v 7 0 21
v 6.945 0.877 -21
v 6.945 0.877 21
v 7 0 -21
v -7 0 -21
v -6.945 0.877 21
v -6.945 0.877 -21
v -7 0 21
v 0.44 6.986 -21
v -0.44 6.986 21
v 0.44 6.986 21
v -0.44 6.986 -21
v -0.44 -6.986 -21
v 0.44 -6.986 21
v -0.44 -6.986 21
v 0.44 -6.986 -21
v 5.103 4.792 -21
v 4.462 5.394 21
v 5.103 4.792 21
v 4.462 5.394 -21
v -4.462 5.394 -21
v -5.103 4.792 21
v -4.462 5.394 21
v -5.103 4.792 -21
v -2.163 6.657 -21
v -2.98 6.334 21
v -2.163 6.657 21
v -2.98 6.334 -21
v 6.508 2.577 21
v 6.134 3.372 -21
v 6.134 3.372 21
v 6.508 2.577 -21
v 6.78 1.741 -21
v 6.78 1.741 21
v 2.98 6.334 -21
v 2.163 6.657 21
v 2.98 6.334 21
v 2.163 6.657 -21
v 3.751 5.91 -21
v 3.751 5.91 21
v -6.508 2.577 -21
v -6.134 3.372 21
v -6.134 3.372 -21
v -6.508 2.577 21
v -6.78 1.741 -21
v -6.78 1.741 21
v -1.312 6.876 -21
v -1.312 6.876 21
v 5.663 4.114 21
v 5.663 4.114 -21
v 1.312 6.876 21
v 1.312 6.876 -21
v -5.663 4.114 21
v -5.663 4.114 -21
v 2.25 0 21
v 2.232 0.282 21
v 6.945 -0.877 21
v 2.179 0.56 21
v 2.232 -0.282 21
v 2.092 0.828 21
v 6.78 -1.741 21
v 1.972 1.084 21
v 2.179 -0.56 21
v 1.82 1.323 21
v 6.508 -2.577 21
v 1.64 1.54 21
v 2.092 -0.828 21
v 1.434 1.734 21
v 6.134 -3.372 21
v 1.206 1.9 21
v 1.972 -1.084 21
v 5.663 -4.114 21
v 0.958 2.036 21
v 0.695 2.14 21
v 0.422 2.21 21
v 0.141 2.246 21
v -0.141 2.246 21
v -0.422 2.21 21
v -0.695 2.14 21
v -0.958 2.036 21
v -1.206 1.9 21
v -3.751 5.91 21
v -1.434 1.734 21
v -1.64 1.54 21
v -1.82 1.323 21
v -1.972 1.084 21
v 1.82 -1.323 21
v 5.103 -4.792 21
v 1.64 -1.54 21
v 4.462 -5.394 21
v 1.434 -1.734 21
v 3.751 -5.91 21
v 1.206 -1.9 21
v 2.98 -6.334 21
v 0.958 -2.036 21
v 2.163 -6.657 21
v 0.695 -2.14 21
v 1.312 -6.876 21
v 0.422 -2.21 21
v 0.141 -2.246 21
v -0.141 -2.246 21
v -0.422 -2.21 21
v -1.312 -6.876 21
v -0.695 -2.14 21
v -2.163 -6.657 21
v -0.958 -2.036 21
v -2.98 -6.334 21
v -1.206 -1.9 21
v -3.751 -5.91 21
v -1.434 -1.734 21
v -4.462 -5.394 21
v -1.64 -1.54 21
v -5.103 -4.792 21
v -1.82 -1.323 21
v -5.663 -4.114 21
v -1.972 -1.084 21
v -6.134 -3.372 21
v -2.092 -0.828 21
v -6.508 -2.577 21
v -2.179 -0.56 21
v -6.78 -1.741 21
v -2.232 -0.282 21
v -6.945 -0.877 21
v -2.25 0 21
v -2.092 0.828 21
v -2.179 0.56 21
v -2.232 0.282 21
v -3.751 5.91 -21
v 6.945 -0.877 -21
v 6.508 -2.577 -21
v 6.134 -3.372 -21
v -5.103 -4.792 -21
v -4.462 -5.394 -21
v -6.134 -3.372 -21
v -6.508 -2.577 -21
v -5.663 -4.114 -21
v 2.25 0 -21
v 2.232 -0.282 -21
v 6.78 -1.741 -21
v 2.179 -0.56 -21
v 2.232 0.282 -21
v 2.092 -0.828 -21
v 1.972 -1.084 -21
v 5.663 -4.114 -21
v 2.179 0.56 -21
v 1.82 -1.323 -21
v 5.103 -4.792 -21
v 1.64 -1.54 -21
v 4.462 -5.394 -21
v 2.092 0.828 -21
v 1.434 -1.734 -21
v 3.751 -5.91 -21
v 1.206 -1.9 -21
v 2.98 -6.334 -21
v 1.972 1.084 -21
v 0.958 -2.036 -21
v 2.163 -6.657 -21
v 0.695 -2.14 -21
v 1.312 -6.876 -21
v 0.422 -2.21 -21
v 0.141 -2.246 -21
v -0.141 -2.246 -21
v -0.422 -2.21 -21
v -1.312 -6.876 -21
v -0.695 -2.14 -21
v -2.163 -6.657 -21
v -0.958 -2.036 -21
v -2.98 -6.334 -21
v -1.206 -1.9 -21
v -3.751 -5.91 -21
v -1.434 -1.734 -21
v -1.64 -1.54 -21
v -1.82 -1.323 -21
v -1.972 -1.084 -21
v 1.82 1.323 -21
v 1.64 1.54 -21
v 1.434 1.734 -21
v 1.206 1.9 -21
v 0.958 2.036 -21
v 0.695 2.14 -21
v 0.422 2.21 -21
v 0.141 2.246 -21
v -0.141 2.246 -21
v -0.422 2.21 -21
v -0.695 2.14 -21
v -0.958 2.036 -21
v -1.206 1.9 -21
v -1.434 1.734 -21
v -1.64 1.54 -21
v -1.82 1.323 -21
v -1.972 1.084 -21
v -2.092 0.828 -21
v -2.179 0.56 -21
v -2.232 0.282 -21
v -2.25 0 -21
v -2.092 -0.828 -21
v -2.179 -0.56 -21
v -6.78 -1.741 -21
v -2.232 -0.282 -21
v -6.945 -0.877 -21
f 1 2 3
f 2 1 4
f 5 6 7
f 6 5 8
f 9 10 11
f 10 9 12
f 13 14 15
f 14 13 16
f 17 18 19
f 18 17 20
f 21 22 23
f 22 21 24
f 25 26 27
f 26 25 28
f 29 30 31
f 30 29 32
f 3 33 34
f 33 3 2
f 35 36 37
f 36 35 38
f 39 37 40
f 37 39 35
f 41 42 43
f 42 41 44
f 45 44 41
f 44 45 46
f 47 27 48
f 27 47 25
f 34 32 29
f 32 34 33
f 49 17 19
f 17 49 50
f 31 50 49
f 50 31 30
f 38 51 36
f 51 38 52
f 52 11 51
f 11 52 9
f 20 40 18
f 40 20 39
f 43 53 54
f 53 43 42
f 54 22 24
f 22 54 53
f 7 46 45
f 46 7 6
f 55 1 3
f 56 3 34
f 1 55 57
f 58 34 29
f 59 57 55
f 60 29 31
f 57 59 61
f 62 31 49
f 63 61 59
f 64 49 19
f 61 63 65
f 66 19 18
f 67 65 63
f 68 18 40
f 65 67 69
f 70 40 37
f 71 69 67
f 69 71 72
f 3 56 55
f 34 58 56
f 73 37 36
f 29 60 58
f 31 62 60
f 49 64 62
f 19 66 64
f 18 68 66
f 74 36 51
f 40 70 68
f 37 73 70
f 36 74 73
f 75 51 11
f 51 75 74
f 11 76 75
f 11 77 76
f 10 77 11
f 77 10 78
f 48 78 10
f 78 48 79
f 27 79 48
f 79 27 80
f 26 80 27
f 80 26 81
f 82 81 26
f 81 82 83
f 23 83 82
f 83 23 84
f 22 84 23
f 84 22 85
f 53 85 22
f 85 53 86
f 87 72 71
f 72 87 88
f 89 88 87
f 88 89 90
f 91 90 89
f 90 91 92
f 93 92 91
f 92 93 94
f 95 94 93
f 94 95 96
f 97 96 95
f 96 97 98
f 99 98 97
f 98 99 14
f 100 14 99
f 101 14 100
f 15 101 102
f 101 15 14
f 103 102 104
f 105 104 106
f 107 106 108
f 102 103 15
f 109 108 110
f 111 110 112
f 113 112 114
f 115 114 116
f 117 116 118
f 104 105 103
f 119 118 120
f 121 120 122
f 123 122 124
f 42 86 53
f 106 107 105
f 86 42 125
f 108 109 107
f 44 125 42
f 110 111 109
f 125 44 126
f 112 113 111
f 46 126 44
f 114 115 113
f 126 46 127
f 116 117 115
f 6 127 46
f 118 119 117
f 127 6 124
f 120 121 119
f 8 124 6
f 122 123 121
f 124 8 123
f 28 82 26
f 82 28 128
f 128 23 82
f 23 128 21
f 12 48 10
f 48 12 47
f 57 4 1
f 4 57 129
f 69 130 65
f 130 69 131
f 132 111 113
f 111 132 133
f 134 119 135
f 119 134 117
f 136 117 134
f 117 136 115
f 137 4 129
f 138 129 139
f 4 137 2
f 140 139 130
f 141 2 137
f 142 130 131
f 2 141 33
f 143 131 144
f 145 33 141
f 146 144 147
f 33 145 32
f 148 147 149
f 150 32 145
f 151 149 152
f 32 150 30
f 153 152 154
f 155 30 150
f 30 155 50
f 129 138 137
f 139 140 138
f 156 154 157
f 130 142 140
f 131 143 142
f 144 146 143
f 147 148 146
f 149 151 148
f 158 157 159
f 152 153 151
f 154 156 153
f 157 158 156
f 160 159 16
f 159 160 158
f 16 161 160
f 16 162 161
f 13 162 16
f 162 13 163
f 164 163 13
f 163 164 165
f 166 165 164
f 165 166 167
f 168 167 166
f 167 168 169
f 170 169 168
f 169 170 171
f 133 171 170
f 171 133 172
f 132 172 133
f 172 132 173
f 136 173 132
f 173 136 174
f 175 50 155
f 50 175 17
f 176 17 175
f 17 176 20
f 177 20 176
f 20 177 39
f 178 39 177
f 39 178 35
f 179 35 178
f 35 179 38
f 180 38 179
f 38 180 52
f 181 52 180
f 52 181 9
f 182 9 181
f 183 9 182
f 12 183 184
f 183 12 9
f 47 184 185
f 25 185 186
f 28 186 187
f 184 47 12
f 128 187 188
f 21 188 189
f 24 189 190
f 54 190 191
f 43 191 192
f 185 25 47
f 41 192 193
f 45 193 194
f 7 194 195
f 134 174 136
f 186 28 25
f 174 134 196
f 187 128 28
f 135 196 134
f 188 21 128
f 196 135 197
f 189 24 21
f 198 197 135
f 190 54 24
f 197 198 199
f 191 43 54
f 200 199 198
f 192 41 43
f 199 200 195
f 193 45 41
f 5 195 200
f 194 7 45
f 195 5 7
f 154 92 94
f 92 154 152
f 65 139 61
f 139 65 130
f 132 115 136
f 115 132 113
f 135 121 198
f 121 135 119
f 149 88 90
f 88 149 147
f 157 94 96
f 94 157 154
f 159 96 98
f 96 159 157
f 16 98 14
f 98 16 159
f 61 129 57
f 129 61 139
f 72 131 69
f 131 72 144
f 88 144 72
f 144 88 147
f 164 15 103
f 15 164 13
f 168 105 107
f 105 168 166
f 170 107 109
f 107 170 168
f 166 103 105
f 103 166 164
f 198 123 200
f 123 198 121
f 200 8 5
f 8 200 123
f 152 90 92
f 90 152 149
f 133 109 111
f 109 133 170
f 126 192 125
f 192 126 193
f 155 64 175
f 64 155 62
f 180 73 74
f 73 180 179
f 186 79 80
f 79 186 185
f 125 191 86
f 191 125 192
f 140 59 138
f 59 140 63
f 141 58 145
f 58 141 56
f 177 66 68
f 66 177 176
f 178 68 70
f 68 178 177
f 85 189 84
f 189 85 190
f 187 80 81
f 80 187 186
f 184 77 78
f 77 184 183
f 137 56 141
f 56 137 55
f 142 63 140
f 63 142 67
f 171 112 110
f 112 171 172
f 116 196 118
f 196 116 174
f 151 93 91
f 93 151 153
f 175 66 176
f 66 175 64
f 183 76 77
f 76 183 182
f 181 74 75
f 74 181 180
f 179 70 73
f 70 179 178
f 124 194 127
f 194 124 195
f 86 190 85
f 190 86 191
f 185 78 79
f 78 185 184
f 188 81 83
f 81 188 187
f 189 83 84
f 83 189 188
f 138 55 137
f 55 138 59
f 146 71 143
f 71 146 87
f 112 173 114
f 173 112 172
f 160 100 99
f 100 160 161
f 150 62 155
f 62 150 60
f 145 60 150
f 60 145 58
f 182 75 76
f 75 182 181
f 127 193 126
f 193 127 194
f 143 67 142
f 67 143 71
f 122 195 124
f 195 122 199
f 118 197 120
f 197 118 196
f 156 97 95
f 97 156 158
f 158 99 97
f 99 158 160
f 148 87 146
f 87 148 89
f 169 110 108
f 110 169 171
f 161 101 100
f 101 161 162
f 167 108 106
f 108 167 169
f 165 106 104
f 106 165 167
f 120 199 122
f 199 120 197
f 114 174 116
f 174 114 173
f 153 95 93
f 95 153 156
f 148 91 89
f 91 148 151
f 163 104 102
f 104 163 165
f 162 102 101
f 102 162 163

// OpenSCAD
$fn = 50;


difference() {
	union() {
		translate(v = [0, 0, -21.0000000000]) {
			cylinder(h = 42, r = 7.0000000000);
		}
	}
	union() {
		translate(v = [0, 0, -100.0000000000]) {
			cylinder(h = 200, r = 2.2500000000);
		}
	}
}
